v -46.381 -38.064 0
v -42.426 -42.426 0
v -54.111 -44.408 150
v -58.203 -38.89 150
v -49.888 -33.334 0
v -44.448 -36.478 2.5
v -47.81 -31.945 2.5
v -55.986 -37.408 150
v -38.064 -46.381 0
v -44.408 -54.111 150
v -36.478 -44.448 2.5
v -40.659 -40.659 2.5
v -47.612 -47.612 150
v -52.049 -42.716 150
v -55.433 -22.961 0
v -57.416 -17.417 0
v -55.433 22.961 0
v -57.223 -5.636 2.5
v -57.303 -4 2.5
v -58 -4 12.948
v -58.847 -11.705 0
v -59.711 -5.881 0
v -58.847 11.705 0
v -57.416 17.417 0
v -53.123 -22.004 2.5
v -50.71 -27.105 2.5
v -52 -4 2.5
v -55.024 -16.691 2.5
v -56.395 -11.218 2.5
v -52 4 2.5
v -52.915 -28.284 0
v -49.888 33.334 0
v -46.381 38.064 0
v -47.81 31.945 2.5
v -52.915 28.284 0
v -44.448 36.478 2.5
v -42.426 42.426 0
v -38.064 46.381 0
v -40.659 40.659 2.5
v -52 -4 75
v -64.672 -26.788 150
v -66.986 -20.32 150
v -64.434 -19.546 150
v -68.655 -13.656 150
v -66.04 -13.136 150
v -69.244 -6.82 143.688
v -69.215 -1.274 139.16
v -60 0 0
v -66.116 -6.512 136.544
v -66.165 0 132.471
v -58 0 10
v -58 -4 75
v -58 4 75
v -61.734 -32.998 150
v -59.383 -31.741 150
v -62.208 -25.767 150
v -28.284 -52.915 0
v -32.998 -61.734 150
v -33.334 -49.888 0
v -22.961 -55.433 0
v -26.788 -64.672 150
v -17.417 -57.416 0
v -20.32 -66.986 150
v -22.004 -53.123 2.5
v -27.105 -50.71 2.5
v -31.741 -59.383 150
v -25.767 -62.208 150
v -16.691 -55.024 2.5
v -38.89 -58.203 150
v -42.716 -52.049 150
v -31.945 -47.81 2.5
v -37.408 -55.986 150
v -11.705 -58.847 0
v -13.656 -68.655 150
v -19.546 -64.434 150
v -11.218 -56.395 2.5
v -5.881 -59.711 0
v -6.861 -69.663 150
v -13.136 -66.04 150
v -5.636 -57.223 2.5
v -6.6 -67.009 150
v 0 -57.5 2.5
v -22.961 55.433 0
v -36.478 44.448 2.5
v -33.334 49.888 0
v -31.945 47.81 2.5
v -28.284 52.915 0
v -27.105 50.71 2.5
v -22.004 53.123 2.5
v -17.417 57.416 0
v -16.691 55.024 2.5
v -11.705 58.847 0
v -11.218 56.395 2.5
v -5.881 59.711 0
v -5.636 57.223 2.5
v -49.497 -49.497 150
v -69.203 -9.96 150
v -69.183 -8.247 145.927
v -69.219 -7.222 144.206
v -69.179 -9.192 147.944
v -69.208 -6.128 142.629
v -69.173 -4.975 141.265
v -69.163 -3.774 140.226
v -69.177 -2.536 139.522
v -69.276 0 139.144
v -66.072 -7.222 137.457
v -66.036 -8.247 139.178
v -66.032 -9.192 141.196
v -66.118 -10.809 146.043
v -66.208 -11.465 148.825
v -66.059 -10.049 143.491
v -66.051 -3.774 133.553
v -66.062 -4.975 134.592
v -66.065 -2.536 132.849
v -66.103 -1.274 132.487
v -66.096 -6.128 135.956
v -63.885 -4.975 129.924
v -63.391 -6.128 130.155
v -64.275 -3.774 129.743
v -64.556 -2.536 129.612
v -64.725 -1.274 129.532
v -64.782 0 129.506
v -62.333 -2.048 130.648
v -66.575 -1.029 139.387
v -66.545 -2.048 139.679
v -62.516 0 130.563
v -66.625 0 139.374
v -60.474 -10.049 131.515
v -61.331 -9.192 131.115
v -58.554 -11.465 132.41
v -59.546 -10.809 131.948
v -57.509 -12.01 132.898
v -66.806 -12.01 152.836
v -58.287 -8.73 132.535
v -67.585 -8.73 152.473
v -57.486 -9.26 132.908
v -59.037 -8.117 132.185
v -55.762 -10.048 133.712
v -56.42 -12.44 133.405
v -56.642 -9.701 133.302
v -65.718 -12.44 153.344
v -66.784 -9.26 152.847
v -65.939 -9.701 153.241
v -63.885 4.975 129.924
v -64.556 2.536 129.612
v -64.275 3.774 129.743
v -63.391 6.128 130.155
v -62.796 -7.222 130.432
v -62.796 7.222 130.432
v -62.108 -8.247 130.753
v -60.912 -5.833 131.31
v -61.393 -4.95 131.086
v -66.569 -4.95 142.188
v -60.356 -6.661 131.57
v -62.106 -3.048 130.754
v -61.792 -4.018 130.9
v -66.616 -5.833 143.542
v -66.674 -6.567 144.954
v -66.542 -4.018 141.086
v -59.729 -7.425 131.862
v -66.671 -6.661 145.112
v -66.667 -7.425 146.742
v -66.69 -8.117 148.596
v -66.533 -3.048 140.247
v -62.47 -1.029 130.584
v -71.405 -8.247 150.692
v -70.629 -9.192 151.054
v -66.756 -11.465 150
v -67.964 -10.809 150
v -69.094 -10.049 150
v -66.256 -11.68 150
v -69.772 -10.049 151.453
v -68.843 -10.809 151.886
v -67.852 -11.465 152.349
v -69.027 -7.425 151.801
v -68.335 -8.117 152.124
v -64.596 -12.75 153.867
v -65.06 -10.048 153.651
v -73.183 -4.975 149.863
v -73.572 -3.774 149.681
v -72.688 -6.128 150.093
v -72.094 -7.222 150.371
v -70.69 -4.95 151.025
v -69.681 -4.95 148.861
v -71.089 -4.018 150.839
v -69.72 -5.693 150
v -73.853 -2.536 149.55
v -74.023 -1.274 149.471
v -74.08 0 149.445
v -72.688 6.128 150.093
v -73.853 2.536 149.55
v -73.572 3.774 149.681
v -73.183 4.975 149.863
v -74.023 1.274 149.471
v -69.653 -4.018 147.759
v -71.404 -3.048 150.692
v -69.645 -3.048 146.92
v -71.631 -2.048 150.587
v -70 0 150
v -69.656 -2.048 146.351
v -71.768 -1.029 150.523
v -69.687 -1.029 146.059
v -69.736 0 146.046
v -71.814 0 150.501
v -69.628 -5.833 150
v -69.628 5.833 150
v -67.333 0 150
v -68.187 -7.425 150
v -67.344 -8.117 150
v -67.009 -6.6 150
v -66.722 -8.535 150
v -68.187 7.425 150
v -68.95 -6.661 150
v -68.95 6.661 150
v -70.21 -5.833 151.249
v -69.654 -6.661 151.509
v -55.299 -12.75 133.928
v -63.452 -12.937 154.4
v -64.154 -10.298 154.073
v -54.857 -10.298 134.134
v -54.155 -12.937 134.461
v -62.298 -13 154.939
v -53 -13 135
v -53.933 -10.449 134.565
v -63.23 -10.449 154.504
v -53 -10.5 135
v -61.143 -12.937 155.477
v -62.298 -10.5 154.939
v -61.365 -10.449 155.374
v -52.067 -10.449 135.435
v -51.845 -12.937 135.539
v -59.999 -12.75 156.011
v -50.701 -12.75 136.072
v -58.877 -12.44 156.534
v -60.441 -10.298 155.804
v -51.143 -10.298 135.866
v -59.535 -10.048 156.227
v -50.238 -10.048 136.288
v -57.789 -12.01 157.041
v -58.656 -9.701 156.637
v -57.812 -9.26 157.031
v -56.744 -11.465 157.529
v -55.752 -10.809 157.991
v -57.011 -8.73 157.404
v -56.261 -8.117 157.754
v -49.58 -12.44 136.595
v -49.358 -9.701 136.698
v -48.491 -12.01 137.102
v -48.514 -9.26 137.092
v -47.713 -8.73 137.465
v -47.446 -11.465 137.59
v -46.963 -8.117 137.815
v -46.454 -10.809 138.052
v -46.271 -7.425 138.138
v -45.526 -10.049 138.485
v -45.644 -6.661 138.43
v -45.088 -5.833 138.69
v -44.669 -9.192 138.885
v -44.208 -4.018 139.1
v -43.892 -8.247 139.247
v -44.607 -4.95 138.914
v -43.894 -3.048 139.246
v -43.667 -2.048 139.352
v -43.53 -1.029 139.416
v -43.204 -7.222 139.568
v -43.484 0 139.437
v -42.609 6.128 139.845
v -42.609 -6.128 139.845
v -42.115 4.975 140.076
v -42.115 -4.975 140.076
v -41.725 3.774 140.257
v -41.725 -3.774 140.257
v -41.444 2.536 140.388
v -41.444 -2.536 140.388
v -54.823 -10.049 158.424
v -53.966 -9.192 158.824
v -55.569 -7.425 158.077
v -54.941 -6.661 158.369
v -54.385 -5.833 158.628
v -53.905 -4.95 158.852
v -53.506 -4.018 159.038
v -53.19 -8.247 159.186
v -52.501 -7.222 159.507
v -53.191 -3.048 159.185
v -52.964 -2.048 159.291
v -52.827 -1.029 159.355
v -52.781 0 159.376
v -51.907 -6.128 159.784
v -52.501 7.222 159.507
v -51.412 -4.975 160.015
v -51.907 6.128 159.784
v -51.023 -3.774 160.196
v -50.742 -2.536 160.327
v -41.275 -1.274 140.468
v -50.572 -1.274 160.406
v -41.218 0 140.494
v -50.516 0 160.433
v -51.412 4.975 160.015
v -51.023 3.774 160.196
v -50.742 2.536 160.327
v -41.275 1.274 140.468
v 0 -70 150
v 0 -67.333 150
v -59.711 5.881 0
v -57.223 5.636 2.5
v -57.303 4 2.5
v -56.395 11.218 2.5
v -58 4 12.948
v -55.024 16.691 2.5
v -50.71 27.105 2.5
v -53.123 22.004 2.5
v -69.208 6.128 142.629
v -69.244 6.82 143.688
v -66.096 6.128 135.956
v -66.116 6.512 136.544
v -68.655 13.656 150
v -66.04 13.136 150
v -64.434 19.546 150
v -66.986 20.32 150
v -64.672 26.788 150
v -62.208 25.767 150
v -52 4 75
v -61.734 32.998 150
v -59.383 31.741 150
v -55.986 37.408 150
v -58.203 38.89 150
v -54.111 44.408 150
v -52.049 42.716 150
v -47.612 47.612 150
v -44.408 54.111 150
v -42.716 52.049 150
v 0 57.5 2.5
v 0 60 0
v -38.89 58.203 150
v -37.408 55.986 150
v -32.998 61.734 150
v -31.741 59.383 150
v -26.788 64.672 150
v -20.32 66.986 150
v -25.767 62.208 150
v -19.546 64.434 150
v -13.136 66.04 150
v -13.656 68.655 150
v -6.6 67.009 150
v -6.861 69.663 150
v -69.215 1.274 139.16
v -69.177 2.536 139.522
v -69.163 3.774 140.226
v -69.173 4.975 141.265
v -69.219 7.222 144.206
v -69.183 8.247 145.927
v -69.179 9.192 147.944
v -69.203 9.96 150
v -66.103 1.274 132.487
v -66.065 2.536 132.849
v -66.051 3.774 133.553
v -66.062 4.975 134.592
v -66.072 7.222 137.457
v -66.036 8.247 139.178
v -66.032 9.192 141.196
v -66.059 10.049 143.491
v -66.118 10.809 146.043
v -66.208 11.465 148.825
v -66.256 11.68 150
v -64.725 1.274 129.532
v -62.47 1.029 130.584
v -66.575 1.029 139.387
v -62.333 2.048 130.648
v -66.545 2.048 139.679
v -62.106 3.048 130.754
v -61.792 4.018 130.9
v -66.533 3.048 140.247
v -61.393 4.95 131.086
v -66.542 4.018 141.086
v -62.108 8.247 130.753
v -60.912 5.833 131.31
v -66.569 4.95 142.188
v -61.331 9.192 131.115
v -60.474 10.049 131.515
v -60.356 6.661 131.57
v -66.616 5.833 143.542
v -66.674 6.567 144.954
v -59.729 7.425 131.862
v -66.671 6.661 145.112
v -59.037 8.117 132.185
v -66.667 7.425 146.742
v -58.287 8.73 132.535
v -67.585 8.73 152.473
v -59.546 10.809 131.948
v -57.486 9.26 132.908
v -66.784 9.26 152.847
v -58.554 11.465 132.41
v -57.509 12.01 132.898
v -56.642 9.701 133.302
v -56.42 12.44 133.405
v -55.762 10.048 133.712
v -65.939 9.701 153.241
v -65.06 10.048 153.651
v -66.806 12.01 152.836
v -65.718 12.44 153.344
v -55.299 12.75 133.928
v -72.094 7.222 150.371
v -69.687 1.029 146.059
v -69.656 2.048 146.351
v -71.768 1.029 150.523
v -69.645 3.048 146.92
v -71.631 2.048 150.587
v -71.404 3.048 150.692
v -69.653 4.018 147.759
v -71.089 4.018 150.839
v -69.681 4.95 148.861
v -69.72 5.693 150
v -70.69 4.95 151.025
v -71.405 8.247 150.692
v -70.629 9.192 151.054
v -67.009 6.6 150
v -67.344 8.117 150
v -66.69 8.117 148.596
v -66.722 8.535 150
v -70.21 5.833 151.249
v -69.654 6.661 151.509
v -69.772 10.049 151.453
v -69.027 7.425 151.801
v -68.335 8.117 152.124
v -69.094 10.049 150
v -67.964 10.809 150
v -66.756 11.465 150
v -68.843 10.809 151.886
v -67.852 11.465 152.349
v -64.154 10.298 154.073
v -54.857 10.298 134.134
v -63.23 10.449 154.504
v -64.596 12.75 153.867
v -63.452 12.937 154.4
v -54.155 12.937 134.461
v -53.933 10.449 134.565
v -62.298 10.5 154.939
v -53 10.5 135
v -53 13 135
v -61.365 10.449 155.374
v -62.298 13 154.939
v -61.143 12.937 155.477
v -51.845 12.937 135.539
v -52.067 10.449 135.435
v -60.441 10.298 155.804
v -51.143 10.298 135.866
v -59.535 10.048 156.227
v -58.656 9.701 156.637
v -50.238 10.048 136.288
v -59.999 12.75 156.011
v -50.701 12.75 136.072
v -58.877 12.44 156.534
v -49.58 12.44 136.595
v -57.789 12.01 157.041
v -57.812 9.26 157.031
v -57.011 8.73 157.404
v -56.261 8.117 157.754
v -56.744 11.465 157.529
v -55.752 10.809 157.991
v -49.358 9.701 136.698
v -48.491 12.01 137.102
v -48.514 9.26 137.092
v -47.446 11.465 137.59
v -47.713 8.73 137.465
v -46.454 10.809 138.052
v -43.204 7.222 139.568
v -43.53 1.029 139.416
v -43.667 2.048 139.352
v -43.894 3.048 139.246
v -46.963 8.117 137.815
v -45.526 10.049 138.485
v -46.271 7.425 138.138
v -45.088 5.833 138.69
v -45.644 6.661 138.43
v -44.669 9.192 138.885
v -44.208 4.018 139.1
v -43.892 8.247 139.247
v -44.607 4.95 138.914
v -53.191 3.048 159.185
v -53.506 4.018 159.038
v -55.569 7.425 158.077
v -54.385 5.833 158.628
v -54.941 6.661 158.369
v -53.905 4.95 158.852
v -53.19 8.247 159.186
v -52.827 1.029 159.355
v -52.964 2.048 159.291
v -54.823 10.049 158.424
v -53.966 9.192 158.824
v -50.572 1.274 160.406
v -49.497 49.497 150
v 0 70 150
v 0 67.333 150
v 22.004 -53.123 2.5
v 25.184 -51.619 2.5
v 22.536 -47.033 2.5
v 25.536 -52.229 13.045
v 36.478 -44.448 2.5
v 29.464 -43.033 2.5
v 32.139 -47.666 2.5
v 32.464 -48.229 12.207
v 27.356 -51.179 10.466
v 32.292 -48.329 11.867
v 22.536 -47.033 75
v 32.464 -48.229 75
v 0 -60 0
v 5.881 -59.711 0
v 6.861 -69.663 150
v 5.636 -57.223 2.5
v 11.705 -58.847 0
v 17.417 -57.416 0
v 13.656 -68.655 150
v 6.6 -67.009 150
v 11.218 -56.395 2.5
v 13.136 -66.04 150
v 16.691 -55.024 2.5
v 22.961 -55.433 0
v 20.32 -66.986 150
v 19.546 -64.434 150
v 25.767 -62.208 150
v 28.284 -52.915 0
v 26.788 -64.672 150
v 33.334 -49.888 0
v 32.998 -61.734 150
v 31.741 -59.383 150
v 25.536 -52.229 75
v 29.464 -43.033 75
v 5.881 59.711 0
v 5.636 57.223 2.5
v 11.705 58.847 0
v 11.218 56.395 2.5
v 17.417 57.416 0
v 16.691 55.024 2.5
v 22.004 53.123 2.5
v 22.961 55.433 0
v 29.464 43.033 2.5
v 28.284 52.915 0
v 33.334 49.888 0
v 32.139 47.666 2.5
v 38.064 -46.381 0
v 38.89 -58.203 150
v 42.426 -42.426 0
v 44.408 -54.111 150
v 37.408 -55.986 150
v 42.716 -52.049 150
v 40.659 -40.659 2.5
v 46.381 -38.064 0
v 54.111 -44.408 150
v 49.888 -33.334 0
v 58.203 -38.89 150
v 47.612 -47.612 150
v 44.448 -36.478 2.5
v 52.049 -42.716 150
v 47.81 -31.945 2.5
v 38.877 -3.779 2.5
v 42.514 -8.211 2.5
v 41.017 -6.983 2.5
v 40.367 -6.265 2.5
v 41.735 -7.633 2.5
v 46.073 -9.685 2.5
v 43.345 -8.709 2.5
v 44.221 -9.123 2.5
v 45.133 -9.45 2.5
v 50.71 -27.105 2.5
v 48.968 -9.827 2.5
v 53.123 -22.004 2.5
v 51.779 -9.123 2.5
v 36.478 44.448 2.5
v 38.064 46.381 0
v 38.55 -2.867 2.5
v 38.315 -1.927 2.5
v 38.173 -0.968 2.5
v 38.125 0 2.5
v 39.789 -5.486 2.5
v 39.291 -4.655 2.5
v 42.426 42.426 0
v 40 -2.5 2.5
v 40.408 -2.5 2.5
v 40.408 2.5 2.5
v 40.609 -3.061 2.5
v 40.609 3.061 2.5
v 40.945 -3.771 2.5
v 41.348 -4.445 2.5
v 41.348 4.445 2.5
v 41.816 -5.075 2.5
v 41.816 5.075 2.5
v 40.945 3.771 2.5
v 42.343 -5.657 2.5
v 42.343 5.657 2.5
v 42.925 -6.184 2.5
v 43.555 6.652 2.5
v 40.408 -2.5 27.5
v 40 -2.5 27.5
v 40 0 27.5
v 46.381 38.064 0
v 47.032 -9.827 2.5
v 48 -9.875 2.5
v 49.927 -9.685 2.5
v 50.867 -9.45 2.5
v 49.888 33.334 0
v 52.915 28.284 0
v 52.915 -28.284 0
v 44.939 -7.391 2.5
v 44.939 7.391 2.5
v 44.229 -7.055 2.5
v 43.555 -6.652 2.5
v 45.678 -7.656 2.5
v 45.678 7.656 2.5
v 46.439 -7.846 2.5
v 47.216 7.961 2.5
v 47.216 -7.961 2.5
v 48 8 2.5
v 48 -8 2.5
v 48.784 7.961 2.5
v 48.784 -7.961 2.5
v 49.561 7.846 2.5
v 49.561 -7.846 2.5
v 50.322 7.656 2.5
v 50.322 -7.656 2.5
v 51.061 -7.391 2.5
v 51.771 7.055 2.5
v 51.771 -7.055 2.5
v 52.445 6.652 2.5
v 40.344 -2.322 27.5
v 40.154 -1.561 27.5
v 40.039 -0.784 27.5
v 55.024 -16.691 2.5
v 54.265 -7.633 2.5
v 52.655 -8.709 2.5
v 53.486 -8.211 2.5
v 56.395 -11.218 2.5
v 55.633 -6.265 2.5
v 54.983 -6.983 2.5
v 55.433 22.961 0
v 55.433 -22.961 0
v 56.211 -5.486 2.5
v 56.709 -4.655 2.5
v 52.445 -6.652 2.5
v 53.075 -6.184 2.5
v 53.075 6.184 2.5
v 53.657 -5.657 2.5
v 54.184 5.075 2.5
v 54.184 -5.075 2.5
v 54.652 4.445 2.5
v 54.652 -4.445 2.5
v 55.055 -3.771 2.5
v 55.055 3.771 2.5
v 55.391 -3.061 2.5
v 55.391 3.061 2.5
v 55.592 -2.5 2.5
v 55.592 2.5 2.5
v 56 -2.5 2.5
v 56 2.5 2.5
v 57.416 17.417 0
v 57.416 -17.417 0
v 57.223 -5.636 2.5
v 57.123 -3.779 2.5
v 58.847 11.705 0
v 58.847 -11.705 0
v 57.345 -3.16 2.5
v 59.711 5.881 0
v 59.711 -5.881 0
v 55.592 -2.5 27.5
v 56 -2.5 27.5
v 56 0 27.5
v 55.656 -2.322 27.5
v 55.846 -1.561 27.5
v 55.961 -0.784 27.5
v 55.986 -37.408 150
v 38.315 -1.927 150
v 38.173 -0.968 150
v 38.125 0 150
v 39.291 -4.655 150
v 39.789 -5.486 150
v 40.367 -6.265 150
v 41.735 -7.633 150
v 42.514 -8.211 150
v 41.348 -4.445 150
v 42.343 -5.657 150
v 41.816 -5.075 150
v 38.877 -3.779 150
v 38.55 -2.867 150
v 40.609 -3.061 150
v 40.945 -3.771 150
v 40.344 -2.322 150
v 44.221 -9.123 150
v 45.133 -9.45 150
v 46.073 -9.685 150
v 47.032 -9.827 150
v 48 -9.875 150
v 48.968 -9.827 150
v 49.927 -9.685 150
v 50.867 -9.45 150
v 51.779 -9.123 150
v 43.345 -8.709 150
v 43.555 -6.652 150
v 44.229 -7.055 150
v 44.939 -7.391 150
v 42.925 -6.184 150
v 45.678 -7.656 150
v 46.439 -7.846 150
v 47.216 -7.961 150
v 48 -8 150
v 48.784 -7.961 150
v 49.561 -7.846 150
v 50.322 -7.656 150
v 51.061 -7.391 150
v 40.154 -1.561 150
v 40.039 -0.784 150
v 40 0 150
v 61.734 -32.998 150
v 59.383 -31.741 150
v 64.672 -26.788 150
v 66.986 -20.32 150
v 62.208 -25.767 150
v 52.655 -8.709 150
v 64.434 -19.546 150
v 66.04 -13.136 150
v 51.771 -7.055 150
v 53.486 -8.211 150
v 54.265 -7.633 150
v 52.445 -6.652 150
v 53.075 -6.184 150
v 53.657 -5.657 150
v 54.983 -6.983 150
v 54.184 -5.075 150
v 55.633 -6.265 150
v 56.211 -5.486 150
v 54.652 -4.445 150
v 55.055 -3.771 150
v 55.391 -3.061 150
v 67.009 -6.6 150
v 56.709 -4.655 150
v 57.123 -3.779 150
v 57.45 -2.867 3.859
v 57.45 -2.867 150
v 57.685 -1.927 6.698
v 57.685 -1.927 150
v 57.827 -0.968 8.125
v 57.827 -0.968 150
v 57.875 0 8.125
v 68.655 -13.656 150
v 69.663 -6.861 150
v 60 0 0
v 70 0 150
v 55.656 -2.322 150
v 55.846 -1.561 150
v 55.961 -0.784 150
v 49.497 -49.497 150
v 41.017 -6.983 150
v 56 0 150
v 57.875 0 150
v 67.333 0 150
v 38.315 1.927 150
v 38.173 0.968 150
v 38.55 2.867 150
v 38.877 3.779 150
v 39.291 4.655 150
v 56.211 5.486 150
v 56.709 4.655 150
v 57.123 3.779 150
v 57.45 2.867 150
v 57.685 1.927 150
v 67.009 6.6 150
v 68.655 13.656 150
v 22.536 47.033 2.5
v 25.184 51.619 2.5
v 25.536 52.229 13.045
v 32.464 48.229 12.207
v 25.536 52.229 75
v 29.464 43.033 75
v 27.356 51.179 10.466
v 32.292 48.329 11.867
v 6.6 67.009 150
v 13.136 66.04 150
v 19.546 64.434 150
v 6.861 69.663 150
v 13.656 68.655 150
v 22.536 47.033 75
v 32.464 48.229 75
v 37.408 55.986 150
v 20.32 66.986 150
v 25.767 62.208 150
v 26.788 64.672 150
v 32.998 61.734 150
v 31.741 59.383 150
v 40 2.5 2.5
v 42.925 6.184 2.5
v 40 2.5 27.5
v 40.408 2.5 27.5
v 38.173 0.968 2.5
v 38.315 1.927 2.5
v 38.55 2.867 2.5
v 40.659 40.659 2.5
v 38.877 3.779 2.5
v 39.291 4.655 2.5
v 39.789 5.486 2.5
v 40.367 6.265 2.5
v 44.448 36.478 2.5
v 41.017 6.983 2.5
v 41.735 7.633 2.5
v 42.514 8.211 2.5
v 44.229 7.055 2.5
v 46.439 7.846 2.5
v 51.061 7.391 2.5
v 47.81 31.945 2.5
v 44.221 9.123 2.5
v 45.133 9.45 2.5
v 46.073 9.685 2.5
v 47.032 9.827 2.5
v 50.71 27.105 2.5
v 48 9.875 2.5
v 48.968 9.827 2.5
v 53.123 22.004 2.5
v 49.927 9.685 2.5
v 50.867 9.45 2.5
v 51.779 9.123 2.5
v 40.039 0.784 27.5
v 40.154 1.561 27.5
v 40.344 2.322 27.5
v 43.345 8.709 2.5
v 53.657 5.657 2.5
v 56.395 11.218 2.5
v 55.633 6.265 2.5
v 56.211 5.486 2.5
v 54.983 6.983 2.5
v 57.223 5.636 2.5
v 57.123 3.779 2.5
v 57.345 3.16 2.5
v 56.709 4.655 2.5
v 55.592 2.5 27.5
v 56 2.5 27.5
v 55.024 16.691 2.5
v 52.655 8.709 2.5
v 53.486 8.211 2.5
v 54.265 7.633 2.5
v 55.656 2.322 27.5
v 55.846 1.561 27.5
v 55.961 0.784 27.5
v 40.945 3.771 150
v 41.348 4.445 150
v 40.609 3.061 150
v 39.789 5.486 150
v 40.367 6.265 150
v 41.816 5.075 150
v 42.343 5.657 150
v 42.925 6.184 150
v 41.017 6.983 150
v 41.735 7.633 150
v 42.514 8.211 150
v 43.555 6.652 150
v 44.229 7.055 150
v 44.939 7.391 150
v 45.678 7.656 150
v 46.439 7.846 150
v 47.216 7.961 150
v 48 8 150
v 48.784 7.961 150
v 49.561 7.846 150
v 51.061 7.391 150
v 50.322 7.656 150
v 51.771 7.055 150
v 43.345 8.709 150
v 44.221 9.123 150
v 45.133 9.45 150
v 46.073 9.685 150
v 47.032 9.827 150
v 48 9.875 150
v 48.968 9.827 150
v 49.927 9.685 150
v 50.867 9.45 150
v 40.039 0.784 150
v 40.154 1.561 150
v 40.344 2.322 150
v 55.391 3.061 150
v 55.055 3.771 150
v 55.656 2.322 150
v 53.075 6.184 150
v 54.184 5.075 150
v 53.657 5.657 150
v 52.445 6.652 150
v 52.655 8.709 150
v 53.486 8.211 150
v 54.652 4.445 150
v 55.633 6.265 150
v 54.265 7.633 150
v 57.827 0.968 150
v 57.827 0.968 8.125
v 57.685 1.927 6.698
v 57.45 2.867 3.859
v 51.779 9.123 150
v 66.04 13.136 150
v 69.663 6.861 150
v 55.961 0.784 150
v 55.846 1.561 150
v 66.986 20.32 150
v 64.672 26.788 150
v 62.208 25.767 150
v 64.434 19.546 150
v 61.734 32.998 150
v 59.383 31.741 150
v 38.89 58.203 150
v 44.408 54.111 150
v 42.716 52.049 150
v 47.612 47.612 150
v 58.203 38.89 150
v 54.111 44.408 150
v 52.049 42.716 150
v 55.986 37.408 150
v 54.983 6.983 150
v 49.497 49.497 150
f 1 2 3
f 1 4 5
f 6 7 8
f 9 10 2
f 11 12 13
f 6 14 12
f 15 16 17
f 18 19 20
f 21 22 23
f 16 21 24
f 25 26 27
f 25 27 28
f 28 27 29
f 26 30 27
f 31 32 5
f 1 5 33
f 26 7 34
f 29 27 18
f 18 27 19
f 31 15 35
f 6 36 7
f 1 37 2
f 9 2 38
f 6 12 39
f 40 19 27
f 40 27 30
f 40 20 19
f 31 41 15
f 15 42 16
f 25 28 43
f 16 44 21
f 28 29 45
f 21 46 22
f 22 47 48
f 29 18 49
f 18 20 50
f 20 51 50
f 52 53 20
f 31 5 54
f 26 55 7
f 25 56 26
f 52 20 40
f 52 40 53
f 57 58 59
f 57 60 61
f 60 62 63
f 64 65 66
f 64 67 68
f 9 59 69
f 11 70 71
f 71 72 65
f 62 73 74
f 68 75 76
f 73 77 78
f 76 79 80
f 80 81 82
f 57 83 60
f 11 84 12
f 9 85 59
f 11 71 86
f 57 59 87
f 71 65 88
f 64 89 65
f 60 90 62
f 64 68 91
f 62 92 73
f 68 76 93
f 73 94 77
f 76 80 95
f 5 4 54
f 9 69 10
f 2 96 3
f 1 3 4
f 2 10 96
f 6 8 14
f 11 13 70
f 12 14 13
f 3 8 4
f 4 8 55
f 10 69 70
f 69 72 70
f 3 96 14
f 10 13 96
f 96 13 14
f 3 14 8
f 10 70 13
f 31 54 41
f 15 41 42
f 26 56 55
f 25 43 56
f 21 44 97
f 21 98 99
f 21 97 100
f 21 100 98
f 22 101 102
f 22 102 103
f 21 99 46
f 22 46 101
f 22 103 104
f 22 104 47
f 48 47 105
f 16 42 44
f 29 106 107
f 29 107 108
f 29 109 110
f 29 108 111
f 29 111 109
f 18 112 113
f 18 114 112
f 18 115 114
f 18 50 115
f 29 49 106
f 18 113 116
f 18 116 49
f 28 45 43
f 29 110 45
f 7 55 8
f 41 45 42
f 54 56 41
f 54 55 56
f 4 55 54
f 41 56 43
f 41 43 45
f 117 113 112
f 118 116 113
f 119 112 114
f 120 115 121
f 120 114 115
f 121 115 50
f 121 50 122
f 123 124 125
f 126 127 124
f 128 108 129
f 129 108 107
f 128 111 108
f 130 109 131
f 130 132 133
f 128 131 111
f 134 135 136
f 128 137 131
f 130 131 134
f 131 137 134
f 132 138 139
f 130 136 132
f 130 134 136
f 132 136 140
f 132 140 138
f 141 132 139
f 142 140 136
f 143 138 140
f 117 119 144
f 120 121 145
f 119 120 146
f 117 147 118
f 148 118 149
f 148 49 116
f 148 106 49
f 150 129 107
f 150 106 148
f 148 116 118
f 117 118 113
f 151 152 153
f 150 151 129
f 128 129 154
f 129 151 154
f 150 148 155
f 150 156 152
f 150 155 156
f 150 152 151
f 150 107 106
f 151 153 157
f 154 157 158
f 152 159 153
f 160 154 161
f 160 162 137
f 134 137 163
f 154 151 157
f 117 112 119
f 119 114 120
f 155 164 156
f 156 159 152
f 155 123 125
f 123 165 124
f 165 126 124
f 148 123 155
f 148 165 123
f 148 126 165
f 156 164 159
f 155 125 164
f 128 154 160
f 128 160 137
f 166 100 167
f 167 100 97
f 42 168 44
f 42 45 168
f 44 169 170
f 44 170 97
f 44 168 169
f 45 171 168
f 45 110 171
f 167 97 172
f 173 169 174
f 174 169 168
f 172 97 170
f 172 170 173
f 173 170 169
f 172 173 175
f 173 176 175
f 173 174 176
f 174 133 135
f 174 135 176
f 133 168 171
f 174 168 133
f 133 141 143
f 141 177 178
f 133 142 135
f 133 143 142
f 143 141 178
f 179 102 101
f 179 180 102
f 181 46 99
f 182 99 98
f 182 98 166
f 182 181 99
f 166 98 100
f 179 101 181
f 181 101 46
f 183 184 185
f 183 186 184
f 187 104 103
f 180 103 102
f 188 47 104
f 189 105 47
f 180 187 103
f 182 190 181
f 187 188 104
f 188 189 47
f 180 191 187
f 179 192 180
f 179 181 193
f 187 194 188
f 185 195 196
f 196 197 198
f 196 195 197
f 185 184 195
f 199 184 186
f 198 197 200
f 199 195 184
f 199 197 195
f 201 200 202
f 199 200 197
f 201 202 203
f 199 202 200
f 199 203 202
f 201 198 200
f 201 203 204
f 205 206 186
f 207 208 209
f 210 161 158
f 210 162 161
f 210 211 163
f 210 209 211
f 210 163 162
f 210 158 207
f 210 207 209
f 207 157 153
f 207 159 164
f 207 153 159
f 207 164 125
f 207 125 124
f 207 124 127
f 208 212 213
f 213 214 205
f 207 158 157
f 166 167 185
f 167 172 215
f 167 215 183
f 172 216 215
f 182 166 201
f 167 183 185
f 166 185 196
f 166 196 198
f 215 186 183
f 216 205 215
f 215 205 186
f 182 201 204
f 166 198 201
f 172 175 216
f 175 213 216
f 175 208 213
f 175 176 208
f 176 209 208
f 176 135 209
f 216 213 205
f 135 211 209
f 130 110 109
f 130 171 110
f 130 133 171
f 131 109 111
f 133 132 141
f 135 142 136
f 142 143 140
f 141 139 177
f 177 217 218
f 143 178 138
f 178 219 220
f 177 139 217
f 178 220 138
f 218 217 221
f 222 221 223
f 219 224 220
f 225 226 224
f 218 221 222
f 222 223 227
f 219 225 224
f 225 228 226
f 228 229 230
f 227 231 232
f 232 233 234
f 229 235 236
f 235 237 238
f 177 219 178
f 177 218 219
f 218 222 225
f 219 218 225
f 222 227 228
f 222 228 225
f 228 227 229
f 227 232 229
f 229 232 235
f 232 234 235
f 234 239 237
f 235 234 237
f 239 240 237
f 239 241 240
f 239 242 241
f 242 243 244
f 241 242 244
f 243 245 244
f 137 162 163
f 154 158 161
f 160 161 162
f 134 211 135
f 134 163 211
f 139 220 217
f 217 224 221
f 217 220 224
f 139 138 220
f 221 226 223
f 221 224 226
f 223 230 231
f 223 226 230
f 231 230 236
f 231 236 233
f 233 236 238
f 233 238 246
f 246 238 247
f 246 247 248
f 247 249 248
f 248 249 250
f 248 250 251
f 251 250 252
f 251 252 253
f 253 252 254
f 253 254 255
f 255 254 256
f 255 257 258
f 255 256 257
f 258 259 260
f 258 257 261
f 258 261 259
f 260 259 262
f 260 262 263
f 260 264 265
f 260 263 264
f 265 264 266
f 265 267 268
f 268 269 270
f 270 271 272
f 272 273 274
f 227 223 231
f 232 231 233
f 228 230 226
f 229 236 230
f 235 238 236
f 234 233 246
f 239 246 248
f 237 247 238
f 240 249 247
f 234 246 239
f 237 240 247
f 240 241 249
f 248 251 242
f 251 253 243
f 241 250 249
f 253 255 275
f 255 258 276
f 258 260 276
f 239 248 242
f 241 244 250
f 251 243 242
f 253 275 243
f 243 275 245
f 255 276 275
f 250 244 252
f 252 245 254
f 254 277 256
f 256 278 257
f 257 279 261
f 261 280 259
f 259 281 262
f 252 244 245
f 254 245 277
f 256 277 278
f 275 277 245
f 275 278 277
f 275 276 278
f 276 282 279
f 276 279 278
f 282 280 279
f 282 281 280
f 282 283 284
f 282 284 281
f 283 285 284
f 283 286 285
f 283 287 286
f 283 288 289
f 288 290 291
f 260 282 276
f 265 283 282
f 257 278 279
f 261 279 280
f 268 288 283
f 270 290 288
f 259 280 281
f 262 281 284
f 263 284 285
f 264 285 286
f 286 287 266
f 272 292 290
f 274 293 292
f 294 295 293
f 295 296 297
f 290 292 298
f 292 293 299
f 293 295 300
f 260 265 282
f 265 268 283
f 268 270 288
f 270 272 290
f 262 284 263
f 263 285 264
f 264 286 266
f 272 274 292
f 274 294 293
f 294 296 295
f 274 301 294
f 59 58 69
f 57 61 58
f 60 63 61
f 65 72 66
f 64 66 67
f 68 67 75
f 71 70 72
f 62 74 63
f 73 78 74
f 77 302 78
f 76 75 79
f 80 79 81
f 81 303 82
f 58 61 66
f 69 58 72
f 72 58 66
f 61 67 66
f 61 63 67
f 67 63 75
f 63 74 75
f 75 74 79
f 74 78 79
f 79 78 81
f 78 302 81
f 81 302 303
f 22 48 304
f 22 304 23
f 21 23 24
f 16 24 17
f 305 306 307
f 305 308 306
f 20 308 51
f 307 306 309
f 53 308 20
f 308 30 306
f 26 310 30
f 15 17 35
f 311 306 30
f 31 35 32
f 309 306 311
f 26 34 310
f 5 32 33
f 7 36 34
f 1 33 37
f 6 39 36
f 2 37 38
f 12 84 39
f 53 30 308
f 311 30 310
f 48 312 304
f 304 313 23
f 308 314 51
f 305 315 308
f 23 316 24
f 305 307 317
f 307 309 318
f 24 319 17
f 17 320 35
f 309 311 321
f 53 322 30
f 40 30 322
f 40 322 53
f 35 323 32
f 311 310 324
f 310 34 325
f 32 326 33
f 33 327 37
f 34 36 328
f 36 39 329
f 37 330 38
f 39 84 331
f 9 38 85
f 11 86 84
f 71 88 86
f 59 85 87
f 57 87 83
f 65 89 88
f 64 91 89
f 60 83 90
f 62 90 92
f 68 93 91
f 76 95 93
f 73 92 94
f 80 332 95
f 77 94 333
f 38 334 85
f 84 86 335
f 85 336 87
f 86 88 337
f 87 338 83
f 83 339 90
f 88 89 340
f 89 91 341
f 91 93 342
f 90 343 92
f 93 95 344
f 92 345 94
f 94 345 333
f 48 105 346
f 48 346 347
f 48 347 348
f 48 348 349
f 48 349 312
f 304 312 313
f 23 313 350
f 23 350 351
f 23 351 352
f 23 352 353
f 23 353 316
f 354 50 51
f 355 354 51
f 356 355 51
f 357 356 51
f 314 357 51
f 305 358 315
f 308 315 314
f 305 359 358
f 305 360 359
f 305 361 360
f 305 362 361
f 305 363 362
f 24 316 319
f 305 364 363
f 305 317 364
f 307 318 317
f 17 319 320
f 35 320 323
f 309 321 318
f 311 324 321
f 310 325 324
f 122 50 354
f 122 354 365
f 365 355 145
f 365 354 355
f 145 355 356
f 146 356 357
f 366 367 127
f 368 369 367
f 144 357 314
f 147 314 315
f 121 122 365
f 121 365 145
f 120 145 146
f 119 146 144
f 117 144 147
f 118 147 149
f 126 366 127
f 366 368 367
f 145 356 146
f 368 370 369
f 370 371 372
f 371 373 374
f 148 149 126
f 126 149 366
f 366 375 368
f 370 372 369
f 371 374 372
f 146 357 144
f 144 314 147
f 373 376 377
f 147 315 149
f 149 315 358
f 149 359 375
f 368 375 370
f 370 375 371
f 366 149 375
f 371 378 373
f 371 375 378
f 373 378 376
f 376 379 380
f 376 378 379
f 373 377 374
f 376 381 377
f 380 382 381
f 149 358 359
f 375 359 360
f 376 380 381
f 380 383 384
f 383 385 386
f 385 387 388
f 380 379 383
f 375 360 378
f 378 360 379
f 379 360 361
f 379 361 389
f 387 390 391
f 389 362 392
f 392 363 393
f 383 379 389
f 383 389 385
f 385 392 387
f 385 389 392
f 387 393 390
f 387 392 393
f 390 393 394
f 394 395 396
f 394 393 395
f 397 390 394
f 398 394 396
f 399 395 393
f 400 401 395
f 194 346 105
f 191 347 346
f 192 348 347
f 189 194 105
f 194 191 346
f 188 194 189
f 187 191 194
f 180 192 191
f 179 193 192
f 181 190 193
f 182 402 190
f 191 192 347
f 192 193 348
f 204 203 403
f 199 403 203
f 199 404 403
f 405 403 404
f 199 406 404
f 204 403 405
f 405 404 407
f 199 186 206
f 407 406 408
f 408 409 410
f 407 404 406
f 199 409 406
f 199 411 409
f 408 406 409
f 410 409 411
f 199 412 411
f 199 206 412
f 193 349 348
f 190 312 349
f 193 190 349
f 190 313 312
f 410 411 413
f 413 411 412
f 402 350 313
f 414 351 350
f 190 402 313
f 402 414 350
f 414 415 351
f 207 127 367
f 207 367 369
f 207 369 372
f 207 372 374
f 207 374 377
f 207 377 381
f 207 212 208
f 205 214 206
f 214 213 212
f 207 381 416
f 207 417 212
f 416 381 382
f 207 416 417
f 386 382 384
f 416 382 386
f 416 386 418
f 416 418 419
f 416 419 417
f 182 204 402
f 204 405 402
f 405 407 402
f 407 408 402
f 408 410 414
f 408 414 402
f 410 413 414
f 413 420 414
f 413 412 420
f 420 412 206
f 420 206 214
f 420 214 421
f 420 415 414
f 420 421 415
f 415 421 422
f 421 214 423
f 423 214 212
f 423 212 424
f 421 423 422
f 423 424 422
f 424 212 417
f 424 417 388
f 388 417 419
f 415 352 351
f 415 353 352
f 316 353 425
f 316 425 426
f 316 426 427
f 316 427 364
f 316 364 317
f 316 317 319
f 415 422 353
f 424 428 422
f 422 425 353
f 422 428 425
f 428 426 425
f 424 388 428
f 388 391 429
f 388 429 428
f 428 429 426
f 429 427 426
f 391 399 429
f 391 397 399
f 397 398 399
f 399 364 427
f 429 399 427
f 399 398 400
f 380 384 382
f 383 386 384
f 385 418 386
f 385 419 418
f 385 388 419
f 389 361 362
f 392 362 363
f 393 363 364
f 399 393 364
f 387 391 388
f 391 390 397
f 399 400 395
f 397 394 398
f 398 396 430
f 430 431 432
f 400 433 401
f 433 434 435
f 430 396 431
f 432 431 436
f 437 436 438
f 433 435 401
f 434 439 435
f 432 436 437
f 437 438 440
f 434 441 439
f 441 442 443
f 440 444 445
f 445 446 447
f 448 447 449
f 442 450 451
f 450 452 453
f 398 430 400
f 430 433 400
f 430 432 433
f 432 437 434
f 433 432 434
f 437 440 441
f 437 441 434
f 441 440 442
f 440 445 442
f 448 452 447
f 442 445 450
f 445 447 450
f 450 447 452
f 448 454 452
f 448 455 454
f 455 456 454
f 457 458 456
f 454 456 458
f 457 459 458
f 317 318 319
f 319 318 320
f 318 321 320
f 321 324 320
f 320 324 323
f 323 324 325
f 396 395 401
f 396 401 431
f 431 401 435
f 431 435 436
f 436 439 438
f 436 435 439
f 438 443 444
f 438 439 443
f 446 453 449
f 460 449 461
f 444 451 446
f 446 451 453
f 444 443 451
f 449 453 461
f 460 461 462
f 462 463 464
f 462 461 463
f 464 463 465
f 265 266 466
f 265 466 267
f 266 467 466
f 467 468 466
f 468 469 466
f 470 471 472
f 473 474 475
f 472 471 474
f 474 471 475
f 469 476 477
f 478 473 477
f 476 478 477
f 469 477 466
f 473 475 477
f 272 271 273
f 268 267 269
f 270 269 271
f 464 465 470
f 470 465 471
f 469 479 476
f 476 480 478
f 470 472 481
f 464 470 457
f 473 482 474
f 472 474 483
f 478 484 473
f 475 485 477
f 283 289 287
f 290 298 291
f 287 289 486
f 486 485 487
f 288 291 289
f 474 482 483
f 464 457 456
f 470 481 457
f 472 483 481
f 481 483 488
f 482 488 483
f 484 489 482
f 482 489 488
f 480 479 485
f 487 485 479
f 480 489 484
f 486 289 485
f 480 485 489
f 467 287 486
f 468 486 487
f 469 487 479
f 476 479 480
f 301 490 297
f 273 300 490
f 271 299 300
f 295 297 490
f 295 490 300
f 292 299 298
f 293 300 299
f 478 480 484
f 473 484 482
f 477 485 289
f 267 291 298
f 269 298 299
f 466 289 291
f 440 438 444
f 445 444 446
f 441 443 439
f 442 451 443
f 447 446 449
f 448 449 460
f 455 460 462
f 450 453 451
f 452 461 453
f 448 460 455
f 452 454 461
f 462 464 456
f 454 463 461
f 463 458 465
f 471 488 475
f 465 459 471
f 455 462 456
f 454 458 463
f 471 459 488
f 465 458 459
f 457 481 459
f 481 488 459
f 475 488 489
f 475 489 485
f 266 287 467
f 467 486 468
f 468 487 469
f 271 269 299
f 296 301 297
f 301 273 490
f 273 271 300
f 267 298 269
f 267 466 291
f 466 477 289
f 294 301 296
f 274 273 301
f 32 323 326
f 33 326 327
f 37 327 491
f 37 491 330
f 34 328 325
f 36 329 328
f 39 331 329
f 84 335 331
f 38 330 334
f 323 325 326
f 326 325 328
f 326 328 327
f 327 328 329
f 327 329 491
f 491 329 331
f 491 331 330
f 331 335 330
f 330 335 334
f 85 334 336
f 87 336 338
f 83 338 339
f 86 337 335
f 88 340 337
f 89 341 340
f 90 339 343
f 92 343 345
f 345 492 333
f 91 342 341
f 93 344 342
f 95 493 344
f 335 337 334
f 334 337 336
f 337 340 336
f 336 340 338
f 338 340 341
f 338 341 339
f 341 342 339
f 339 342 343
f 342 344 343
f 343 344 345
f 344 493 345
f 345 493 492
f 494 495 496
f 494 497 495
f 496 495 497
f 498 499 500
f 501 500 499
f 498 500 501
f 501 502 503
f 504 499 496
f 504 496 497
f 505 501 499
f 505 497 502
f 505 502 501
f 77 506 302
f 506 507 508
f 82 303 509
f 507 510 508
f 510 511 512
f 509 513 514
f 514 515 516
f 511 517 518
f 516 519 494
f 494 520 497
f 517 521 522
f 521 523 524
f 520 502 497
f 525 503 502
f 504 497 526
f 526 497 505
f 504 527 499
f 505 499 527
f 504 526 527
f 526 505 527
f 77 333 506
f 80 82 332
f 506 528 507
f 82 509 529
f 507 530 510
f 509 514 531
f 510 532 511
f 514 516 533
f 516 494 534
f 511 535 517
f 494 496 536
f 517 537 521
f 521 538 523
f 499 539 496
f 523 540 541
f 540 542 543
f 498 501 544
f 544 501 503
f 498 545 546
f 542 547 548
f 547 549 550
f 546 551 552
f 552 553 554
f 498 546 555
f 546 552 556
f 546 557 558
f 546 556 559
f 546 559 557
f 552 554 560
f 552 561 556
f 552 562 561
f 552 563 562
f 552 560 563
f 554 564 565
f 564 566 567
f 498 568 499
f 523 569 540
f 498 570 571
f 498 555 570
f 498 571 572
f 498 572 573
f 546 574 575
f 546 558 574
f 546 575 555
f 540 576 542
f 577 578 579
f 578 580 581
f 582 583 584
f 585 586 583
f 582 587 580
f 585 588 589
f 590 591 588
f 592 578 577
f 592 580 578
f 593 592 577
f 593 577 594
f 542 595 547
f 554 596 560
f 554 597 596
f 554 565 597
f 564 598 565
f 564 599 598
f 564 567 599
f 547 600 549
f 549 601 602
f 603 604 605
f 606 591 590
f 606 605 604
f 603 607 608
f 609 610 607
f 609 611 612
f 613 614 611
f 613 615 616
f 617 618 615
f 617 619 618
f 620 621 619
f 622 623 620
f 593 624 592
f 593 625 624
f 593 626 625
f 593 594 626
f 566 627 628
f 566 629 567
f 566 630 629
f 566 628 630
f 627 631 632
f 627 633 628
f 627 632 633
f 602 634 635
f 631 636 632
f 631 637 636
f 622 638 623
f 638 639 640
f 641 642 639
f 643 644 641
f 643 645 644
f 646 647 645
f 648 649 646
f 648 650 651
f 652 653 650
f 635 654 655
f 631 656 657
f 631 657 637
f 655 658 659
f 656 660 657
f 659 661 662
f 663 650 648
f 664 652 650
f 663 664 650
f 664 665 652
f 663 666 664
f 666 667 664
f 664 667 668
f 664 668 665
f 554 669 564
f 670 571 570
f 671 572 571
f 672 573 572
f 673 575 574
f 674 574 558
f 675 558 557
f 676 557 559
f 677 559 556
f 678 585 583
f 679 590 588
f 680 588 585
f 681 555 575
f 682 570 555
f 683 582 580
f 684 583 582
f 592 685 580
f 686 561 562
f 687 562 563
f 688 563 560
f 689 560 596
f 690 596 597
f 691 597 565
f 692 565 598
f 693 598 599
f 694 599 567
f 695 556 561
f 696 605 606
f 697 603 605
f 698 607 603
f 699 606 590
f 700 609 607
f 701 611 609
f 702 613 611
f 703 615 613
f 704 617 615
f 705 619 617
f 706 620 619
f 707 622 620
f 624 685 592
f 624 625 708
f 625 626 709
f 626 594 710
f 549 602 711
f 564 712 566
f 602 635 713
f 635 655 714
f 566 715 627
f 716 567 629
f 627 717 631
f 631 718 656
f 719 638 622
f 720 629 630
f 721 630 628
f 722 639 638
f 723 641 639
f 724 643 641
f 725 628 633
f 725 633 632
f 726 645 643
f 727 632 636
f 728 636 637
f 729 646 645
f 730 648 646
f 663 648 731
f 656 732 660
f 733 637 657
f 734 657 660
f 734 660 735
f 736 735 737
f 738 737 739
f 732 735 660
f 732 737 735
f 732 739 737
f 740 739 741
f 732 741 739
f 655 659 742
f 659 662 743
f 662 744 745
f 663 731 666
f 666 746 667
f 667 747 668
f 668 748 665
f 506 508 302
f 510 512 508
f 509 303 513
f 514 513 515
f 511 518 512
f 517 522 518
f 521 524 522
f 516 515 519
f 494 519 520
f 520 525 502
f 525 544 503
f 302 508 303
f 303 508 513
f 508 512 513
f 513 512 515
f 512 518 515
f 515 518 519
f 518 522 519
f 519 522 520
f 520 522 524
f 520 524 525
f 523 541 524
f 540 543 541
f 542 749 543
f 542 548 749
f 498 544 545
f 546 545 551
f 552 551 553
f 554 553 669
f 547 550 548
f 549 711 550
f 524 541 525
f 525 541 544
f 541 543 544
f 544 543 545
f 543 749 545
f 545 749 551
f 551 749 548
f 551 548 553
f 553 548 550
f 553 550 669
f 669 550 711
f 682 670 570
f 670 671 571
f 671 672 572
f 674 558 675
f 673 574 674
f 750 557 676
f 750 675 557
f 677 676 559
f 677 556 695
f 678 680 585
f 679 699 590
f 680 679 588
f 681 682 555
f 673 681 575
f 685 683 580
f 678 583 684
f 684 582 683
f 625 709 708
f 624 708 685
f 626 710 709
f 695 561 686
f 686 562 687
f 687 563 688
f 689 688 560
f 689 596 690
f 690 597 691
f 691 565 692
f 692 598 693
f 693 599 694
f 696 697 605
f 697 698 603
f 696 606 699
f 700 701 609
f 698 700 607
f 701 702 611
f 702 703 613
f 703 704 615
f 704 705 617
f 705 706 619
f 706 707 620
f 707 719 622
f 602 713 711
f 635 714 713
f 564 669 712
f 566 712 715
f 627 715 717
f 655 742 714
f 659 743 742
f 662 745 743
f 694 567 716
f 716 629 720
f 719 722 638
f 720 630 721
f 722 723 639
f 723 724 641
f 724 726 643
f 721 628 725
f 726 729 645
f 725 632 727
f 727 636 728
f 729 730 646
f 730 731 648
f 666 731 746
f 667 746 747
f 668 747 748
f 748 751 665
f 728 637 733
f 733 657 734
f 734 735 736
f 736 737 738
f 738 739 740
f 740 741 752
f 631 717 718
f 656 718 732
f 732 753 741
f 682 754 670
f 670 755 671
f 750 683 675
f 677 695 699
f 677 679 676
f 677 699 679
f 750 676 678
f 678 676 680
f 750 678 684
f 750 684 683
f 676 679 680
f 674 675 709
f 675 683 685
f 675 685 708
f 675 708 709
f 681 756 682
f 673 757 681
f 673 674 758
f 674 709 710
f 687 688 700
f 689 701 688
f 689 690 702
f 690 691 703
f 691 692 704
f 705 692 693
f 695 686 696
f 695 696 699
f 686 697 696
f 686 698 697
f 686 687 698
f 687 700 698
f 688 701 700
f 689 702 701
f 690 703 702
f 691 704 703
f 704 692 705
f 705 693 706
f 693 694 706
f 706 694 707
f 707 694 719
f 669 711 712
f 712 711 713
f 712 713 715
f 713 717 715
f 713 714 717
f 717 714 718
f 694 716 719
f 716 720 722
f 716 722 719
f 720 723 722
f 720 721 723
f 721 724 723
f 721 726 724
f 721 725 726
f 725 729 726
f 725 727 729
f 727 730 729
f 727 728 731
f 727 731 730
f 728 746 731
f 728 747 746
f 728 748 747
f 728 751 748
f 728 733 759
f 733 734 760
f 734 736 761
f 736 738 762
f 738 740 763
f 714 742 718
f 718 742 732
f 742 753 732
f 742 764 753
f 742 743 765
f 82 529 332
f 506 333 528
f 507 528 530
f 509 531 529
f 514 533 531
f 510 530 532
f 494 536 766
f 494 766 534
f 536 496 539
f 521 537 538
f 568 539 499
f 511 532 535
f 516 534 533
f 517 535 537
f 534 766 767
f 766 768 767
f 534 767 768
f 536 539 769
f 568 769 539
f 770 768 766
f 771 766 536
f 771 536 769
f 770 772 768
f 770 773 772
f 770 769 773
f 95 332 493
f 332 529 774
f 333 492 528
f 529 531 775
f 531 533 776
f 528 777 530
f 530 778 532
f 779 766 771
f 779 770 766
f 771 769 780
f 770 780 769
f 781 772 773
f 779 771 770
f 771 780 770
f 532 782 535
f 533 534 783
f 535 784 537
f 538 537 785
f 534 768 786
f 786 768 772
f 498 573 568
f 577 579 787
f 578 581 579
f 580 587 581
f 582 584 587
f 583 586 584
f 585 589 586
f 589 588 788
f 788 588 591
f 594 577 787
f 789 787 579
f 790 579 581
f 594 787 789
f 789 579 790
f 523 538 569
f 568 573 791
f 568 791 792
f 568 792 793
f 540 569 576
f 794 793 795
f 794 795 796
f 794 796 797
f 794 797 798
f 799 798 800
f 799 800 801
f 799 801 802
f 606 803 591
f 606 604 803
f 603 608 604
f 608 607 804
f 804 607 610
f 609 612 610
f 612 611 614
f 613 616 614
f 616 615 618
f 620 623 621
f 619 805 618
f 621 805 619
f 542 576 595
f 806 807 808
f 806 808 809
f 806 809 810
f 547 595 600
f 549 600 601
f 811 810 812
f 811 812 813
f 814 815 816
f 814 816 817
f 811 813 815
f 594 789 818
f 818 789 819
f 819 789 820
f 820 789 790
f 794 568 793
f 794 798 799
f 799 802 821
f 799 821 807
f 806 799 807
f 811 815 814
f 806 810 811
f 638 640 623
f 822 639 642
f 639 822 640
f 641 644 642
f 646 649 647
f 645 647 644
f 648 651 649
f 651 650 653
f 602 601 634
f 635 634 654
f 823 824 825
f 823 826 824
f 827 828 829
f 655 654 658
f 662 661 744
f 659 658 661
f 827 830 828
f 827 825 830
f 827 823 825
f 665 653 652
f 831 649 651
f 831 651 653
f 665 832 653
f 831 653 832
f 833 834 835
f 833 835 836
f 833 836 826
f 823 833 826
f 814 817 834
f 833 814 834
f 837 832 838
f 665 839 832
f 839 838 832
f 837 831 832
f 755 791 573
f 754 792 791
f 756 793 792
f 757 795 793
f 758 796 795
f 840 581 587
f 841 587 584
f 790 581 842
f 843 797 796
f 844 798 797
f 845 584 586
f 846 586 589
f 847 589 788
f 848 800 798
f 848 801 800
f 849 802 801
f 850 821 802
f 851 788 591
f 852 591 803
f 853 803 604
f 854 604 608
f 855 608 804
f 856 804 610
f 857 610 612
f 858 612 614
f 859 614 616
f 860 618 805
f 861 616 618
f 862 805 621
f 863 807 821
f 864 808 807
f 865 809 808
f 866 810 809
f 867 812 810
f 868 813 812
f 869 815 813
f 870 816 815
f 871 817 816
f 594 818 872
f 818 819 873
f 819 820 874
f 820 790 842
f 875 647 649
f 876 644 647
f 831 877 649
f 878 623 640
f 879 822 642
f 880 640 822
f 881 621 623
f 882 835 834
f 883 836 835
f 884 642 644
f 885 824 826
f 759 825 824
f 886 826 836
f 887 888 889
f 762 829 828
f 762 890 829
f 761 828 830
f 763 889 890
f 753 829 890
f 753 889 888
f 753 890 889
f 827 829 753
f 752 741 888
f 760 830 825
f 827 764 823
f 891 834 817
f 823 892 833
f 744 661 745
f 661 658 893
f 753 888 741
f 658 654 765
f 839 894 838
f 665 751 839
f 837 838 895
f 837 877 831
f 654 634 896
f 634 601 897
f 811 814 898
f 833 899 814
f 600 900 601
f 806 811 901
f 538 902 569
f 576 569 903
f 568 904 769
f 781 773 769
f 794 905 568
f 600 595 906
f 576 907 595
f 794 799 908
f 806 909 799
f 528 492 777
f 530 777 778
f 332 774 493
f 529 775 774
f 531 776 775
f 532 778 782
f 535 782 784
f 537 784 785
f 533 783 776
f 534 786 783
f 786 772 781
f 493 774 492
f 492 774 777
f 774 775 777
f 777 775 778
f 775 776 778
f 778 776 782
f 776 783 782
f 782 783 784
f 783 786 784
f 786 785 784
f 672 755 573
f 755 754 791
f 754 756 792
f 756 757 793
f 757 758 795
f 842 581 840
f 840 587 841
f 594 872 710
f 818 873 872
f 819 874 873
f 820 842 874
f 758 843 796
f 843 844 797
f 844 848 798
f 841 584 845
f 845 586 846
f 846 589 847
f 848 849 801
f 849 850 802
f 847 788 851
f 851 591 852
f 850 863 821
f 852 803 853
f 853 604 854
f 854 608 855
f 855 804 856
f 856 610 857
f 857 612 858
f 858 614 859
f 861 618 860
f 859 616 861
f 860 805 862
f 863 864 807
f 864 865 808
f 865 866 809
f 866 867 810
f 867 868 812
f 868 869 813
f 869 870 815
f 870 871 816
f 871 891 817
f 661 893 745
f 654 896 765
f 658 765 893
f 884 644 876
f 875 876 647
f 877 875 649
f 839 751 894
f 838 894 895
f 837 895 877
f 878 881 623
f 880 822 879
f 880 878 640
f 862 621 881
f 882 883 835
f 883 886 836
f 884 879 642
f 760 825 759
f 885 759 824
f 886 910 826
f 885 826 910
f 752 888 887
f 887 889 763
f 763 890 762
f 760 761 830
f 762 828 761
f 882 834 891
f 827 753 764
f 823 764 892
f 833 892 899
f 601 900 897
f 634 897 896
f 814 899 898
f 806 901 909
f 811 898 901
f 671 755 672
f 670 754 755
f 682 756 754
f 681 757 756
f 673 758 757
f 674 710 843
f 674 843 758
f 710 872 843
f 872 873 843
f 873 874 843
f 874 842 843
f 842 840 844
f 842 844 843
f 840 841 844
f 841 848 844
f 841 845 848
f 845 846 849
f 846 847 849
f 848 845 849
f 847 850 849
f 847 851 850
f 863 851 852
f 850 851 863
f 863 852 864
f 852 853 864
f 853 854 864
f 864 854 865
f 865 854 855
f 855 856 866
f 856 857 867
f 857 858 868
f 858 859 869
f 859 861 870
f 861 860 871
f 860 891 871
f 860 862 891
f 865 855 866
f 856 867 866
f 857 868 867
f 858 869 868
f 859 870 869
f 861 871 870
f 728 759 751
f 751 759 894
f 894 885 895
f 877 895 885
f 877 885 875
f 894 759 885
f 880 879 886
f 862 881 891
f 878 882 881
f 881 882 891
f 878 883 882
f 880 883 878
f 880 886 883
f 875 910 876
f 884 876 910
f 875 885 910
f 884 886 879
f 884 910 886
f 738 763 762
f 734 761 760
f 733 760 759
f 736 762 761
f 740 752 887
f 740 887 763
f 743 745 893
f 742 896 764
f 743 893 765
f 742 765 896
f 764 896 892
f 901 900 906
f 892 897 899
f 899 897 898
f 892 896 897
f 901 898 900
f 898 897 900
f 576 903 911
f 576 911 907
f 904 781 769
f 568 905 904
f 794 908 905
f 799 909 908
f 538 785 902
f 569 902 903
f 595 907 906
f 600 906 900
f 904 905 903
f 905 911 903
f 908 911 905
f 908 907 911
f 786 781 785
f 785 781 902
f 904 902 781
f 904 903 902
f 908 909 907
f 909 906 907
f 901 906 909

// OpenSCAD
// ====================================================================
// AeroSpire Self-Watering Planter - Reservoir Base
// Parametric Engineering CAD - OpenSCAD CSG
// ====================================================================
$fn = 64;

// Primary Parameters (mm)
top_dia = 140;
base_dia = 120;
total_height = 150;
wall = 2.5;
rim_height = 8;
shelf_height = 75;
gauge_dia = 16;
gauge_offset = 48;

module reservoir_outer() {
    cylinder(h = total_height, d1 = base_dia, d2 = top_dia);
}

module reservoir_inner() {
    translate([0, 0, wall])
        cylinder(h = total_height, d1 = base_dia - (wall * 2), d2 = top_dia - (wall * 2));
}

module water_level_channel() {
    // Integrated guide tube for floating level gauge
    translate([gauge_offset, 0, wall])
        difference() {
            cylinder(h = total_height - wall, d = gauge_dia + (wall * 1.5));
            translate([0, 0, -1])
                cylinder(h = total_height + 2, d = gauge_dia);
            // Inflow slot at bottom of gauge channel
            translate([-gauge_dia/2, -wall, 0])
                cube([gauge_dia, wall * 2, 25]);
        }
}

module refill_spout() {
    // Angled refill spout lip
    translate([-gauge_offset - 5, 0, total_height - 15])
        rotate([0, -25, 0])
            difference() {
                cylinder(h = 22, d = 26);
                translate([0, 0, -1])
                    cylinder(h = 24, d = 21);
            }
}

module internal_shelf_supports() {
    // 3 internal shelf support lugs for inner basket
    for (a = [60, 180, 300]) {
        rotate([0, 0, a])
            translate([(base_dia/2) - 8, -4, wall])
                cube([6, 8, shelf_height - wall]);
    }
}

module base_assembly() {
    union() {
        difference() {
            reservoir_outer();
            reservoir_inner();
            // Refill access notch on rim
            translate([-gauge_offset - 10, -12, total_height - 18])
                cube([20, 24, 25]);
        }
        water_level_channel();
        internal_shelf_supports();
        refill_spout();
    }
}

color([0.2, 0.45, 0.7, 0.9])
    base_assembly();
